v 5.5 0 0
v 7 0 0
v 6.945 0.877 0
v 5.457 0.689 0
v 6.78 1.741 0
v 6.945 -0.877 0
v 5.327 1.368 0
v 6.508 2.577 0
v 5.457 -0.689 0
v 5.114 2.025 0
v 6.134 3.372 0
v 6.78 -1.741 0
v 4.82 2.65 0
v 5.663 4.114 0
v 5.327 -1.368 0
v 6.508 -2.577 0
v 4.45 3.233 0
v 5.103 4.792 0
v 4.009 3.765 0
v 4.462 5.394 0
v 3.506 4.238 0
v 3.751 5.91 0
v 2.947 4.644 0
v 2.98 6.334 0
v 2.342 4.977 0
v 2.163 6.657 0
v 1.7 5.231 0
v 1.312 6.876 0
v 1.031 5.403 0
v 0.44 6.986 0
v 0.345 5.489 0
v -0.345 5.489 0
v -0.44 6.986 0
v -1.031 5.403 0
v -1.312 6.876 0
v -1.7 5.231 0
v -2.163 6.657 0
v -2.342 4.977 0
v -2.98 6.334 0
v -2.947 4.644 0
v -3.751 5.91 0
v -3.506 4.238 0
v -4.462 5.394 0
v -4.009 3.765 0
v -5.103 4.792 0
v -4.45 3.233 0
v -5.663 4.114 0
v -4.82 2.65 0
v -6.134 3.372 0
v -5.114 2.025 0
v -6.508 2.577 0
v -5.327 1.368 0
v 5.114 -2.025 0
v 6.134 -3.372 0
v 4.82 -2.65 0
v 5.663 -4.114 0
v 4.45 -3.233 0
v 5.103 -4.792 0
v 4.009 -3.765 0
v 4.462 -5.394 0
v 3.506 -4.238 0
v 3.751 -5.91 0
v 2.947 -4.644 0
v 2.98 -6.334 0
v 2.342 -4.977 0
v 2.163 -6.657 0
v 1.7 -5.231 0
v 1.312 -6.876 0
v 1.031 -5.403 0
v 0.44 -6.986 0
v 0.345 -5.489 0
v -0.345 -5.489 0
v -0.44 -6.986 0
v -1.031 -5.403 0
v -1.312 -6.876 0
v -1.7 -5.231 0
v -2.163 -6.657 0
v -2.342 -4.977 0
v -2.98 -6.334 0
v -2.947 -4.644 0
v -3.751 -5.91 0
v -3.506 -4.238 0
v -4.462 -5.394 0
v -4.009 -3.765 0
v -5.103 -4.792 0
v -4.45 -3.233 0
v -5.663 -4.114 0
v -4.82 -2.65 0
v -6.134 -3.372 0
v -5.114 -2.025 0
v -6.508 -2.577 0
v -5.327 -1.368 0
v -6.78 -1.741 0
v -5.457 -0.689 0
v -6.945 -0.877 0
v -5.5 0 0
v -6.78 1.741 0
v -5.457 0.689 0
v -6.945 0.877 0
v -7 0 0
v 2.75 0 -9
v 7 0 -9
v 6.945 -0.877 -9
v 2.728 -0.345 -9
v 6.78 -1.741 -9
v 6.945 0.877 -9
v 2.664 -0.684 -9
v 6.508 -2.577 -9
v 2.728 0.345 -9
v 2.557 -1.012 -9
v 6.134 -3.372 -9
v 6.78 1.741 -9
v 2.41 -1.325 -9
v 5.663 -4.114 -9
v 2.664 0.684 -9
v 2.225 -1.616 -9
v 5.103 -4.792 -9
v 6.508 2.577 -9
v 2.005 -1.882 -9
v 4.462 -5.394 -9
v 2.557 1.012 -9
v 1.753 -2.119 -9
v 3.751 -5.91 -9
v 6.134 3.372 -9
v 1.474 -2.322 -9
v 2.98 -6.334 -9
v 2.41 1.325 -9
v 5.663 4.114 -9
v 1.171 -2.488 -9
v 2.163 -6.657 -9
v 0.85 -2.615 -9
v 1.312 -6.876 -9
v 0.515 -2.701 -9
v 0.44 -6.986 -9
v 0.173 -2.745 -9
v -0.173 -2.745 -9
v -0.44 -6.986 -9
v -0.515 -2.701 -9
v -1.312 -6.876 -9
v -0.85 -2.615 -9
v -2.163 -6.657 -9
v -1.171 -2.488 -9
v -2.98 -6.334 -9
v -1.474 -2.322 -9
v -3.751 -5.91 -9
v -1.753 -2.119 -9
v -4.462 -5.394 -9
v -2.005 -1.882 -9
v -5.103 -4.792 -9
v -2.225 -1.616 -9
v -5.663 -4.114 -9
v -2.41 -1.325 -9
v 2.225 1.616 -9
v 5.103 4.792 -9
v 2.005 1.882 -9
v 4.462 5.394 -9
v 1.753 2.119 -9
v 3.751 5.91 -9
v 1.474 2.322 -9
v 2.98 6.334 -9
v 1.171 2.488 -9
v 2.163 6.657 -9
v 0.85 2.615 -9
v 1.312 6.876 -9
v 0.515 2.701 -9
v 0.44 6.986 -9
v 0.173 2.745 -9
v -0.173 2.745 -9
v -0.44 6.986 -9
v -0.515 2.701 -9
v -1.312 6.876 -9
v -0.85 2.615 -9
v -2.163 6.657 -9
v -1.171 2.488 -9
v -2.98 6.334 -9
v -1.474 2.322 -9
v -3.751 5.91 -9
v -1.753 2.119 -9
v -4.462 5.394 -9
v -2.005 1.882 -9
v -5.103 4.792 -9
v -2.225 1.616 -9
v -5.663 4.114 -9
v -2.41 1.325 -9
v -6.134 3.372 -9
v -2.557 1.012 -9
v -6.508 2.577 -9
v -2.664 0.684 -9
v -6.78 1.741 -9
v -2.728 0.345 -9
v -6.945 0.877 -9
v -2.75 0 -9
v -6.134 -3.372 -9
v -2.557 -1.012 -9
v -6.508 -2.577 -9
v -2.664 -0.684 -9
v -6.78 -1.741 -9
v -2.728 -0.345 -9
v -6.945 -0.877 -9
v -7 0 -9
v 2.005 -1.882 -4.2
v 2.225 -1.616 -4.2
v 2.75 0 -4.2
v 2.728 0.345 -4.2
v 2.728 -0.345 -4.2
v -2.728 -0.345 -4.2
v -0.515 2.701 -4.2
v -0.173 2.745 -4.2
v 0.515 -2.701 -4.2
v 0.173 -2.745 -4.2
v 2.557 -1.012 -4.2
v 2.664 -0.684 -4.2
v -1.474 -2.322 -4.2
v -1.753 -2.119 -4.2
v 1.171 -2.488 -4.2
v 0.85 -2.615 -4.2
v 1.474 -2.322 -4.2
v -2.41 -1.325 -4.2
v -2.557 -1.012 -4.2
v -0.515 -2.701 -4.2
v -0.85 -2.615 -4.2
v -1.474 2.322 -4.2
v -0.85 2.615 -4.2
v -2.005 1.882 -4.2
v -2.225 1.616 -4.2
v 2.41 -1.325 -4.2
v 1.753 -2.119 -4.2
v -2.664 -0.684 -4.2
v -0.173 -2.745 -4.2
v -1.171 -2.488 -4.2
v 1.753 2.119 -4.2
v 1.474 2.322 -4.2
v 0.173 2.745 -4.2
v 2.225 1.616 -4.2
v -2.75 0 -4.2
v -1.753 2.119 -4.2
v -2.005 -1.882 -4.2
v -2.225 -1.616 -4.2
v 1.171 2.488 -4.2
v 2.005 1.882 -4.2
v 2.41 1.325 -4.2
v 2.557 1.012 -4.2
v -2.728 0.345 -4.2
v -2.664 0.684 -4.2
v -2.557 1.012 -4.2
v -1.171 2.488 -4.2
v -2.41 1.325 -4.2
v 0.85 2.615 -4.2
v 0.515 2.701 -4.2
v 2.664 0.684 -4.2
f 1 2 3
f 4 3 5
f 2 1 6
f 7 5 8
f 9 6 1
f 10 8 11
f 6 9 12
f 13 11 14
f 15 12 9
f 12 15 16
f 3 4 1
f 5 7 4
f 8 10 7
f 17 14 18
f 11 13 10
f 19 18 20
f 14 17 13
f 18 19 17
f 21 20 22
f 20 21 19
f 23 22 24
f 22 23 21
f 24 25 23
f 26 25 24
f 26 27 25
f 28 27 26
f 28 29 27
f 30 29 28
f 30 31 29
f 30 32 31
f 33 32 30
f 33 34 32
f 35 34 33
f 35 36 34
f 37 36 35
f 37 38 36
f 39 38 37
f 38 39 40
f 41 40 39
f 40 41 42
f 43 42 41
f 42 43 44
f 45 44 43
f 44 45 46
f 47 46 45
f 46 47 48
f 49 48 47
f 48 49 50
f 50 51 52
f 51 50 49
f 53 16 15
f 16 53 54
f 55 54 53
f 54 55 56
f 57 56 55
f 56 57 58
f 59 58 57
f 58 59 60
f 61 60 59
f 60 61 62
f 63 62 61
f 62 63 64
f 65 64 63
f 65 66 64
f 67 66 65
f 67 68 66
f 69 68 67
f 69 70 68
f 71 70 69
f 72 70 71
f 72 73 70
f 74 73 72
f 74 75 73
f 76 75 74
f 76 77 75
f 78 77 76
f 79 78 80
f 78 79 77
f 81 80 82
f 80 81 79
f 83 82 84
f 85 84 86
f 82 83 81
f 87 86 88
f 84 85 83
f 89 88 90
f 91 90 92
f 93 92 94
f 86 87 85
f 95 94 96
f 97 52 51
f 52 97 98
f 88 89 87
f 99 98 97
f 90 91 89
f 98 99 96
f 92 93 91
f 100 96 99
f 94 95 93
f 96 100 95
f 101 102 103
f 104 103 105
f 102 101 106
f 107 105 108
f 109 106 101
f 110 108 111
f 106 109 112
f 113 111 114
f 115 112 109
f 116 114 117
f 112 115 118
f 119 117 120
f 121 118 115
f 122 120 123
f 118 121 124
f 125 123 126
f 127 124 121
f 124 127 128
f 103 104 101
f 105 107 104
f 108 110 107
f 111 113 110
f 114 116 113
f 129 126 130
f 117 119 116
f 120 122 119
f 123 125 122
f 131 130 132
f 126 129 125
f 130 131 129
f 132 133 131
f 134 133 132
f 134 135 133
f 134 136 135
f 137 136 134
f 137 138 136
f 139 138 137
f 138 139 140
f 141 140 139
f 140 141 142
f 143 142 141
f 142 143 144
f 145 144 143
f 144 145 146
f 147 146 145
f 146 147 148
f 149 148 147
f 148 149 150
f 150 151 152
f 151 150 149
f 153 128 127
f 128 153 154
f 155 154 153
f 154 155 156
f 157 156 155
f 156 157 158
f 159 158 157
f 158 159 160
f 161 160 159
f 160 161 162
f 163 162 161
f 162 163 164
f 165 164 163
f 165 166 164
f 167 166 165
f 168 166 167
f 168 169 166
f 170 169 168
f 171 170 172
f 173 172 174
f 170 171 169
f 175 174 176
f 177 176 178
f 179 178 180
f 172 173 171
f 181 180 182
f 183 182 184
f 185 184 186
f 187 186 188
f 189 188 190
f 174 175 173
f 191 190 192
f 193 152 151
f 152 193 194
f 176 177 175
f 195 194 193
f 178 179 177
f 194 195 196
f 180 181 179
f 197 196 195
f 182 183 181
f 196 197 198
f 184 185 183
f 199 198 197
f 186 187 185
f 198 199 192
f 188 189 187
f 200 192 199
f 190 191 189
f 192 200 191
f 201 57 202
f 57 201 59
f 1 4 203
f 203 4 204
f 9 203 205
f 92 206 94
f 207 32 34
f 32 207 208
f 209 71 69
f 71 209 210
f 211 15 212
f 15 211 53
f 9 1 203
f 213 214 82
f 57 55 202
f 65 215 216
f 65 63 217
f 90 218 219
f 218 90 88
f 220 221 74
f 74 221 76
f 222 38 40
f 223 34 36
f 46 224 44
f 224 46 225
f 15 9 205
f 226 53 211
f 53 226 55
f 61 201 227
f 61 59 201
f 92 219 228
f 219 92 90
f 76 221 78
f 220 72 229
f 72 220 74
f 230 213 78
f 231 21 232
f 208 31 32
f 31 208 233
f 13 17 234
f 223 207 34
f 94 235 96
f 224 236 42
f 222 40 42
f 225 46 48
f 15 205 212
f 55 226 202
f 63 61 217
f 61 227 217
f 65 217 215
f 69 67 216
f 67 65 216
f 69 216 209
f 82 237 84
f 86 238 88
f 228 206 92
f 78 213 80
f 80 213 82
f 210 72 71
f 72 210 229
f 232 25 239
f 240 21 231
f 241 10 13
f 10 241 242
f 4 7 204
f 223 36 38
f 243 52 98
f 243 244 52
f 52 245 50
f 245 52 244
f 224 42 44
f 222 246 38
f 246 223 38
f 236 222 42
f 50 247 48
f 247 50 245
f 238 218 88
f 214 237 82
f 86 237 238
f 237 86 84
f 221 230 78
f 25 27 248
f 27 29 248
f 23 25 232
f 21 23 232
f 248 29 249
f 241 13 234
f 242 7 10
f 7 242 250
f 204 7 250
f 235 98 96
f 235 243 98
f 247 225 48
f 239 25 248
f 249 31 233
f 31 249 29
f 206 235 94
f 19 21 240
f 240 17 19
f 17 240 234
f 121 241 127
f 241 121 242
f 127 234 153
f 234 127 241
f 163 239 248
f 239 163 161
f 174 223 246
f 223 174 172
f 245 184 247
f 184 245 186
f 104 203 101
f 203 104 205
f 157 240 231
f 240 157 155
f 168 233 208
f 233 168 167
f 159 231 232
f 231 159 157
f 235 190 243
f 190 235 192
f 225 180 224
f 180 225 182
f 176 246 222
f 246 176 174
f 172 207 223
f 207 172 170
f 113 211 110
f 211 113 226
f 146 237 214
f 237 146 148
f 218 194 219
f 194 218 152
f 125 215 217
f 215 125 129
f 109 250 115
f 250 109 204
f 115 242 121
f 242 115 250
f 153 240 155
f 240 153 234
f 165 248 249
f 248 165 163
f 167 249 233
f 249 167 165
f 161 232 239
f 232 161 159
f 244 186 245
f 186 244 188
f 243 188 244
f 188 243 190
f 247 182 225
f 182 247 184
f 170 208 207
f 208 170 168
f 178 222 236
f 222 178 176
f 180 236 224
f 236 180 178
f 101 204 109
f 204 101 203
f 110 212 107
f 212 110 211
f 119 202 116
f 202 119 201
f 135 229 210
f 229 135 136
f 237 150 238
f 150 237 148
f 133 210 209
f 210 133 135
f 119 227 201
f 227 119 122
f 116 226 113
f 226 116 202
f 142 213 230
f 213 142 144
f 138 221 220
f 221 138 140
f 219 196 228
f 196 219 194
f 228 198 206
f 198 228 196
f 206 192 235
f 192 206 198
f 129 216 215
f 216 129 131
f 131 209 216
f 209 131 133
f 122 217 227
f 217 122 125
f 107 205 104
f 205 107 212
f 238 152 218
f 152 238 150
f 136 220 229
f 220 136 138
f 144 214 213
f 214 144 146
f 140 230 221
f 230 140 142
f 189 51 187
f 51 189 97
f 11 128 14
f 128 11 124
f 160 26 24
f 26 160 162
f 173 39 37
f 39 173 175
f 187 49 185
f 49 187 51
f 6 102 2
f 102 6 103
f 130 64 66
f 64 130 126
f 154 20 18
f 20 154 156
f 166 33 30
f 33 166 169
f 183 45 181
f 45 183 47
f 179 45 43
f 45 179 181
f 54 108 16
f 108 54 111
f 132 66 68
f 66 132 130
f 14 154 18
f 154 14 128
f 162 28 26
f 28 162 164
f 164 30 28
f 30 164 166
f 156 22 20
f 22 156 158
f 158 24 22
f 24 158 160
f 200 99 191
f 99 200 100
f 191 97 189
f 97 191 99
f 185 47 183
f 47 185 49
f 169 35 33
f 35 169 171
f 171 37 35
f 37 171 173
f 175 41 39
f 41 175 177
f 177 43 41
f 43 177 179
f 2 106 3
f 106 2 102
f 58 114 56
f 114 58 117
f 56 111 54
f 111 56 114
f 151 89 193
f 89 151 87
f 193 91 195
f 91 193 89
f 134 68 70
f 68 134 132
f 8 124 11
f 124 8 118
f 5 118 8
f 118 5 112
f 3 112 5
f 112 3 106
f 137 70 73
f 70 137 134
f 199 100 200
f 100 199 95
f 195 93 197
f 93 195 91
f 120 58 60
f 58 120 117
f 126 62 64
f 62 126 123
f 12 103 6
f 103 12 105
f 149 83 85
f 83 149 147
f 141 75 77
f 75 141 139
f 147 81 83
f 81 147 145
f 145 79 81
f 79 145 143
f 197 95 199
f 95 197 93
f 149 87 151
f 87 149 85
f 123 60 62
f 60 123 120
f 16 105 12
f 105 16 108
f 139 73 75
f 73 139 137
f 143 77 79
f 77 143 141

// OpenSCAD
$fn = 50;


difference() {
	union() {
		translate(v = [0, 0, -9.0000000000]) {
			cylinder(h = 9, r = 7.0000000000);
		}
		cylinder(h = 0, r = 16.0000000000);
	}
	union() {
		translate(v = [0, 0, 0]) {
			rotate(a = [0, 0, 0]) {
				difference() {
					union() {
						#translate(v = [0, 0, -9.0000000000]) {
							cylinder(h = 9, r = 2.2500000000);
						}
						#translate(v = [0, 0, -4.2000000000]) {
							cylinder(h = 4.2000000000, r1 = 2.7500000000, r2 = 5.5000000000);
						}
						#translate(v = [0, 0, -9.0000000000]) {
							cylinder(h = 9, r = 2.7500000000);
						}
						#translate(v = [0, 0, -9.0000000000]) {
							cylinder(h = 9, r = 2.2500000000);
						}
					}
					union();
				}
			}
		}
	}
}
